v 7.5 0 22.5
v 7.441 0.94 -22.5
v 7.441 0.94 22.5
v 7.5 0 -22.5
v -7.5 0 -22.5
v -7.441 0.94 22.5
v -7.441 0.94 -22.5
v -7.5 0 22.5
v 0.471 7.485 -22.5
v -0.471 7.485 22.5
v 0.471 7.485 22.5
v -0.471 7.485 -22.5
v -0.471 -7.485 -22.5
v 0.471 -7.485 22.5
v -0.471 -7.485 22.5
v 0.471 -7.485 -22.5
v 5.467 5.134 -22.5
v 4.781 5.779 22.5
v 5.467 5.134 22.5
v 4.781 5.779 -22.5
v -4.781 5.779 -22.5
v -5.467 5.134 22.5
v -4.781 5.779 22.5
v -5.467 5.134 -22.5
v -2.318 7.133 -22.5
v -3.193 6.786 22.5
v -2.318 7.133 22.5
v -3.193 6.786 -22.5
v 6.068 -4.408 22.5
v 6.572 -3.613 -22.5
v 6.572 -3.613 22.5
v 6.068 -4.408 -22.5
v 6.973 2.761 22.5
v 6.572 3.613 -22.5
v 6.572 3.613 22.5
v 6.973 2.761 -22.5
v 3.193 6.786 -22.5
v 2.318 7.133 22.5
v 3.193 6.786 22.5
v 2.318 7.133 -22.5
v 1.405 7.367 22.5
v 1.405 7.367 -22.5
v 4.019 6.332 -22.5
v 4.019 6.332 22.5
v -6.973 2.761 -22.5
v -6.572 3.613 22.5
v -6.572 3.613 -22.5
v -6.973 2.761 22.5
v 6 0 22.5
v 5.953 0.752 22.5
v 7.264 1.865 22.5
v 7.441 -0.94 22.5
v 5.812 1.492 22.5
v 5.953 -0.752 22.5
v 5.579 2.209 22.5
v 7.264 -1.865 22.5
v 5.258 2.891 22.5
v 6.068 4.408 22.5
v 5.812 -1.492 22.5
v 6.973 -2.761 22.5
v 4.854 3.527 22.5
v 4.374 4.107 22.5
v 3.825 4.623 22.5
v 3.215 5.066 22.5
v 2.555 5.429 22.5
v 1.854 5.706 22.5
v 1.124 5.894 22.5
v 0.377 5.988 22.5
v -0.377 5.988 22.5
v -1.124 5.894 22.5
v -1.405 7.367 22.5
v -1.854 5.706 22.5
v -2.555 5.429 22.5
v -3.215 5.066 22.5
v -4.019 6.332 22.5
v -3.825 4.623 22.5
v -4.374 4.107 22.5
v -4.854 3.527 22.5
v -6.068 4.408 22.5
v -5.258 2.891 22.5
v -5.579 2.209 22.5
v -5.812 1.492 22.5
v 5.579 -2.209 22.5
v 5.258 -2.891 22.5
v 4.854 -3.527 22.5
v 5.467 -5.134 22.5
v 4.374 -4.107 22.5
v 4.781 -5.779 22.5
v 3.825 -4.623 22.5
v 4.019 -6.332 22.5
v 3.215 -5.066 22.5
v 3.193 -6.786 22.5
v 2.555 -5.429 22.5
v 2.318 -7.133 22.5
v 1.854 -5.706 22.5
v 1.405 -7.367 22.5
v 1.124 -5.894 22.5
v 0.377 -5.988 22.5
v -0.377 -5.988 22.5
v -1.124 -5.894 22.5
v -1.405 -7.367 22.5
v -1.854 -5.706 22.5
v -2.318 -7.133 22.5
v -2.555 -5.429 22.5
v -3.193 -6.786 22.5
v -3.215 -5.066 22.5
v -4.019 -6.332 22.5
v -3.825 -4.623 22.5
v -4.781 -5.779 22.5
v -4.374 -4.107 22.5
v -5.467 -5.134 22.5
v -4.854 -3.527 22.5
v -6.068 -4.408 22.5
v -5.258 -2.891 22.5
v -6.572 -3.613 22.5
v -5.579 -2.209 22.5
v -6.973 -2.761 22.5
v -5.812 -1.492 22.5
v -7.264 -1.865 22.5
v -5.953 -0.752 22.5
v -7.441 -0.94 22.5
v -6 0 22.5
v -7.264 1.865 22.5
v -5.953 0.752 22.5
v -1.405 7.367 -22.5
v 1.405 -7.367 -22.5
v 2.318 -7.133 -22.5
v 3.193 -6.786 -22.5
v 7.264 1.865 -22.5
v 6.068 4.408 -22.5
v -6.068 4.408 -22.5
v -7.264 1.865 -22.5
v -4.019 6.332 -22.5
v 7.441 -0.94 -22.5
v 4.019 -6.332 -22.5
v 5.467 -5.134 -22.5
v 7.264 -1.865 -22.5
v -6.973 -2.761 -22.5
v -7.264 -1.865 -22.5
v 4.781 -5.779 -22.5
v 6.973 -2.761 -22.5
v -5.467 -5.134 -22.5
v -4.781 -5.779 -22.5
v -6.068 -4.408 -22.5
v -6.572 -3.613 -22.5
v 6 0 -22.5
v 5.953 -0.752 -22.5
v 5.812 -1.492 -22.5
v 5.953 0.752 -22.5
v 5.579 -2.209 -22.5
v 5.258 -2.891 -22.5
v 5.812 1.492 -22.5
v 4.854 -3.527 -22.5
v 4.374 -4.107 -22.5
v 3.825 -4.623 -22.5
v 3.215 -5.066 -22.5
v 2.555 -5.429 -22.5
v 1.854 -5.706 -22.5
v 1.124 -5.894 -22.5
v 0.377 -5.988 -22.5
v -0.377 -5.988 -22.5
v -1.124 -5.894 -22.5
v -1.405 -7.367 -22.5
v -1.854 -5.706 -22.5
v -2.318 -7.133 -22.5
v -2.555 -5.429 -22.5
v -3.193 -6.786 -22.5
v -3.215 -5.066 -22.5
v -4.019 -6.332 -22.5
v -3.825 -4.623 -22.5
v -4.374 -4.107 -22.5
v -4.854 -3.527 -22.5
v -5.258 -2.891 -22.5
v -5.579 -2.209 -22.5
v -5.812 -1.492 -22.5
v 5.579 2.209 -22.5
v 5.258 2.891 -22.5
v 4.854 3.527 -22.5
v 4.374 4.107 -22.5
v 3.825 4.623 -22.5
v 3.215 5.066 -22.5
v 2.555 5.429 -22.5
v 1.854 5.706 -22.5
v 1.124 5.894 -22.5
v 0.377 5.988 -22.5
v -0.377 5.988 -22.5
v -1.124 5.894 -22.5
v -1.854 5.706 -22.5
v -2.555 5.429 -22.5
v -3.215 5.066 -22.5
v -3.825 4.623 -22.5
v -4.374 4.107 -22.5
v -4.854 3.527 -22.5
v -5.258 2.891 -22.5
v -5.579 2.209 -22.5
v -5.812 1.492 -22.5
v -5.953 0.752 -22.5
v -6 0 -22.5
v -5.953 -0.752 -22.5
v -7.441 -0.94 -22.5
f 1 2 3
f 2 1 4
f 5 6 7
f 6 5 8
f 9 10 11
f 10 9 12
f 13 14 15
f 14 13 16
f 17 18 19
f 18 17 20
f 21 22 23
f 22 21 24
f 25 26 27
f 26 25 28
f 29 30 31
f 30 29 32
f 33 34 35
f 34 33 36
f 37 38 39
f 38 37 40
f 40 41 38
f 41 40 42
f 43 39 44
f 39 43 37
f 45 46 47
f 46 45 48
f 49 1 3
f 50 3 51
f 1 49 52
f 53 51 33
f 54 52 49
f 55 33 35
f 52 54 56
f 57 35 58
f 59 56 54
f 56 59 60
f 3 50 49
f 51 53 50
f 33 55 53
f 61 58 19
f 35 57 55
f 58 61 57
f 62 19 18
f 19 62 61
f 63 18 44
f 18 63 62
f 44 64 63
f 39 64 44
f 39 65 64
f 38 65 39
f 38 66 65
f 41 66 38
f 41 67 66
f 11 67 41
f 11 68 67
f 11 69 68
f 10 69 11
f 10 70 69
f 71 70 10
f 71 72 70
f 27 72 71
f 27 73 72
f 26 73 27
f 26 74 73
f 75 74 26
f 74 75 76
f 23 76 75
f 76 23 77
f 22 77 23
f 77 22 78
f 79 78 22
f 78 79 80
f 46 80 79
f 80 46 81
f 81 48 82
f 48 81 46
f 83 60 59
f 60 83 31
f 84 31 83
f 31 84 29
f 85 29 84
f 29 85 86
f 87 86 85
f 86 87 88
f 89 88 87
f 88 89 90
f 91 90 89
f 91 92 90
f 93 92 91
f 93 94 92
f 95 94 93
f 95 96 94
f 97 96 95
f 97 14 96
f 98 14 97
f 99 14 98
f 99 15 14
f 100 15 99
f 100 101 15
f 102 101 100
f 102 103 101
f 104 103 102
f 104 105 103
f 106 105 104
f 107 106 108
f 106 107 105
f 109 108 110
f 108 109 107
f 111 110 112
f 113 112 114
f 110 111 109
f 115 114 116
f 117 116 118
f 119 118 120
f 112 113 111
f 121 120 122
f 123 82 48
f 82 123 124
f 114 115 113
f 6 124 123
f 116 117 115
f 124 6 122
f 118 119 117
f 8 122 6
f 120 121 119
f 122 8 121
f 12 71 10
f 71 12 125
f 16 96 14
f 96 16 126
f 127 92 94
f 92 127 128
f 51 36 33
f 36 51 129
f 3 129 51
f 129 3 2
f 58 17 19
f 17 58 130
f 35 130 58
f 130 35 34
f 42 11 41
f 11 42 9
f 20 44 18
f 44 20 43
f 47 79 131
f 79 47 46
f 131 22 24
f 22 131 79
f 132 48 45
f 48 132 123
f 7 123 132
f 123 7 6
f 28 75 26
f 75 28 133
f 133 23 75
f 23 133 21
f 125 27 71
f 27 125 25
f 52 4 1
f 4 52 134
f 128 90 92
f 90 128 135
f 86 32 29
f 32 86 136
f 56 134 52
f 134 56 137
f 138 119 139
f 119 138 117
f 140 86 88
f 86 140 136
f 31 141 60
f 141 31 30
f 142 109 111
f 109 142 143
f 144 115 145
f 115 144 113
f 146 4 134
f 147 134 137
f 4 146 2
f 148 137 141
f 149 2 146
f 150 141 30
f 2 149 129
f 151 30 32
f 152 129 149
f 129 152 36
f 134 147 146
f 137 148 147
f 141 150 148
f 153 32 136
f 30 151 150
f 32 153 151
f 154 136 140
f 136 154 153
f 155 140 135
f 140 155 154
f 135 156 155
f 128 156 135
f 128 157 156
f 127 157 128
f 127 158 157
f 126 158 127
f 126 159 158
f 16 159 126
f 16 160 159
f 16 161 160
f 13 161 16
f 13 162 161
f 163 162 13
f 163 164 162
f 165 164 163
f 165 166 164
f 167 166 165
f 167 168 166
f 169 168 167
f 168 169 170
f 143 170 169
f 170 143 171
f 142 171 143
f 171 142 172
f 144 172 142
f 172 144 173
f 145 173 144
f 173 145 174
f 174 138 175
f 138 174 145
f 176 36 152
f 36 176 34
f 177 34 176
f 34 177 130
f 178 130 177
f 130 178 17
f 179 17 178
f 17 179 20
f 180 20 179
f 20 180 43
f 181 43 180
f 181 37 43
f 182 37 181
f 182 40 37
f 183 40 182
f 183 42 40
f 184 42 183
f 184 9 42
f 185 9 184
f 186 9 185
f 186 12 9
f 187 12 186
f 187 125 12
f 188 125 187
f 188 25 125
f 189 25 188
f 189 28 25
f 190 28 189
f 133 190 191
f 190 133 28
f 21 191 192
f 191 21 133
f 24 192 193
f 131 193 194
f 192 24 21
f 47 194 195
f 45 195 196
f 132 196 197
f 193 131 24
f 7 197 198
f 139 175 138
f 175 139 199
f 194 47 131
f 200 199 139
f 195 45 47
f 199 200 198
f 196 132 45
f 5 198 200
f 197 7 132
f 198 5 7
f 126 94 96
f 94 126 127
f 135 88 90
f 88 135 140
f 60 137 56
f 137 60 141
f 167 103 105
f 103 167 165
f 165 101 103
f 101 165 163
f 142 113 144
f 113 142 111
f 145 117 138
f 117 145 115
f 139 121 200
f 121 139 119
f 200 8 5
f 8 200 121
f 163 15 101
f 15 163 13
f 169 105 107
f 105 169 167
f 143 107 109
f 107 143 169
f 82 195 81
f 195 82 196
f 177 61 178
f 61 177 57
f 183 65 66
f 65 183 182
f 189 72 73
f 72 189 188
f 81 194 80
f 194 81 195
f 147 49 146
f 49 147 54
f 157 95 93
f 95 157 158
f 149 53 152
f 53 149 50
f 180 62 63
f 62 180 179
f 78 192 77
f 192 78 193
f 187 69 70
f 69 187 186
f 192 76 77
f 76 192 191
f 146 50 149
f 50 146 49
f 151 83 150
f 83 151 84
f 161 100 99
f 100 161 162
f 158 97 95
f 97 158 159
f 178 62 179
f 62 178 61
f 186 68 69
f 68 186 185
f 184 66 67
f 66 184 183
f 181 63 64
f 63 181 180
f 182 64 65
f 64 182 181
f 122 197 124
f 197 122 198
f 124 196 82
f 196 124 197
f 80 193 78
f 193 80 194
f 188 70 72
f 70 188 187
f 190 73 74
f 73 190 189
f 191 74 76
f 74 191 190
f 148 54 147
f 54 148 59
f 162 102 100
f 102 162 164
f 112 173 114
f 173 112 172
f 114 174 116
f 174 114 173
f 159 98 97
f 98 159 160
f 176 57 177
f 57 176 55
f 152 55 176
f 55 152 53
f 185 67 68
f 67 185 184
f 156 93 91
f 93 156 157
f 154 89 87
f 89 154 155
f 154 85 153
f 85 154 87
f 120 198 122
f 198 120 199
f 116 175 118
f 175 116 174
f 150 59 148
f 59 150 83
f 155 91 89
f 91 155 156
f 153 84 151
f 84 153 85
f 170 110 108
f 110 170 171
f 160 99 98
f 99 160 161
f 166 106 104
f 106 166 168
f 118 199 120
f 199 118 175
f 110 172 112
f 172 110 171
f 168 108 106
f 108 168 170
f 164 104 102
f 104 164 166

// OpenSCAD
$fn = 50;


difference() {
	union() {
		translate(v = [0, 0, -22.5000000000]) {
			cylinder(h = 45, r = 7.5000000000);
		}
	}
	union() {
		translate(v = [0, 0, -100.0000000000]) {
			cylinder(h = 200, r = 6);
		}
	}
}
